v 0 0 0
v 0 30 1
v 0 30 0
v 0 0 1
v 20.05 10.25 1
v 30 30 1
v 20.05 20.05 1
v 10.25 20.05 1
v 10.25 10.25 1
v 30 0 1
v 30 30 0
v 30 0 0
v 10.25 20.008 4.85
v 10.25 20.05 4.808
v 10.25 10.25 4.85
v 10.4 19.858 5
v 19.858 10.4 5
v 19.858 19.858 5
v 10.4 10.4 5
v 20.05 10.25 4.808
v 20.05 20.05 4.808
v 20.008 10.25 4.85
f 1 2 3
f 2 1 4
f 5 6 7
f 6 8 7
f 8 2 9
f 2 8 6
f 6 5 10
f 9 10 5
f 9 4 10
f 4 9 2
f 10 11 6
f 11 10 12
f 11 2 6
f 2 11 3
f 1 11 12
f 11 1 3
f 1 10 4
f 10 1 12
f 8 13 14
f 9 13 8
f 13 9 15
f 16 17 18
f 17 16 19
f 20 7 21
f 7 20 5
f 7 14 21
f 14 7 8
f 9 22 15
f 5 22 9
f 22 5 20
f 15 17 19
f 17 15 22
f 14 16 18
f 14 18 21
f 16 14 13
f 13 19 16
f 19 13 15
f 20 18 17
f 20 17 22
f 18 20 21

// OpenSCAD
// file: ../configuration.scad
// Vyska vrstvy pro tisknuti dilu [mm]
layer_height = 0.25; //Slic3r->Print Settings->Layers and perimeters->Layer height

// Rezerva prumeru hlavy sroubu [mm]
spare = 1;
// Prumer hlavy M6 sroubu (pricte se rezerva) [mm]
M6_head_diameter = 10.6+spare;
//M6_head_diameter = 12+spare;

// Vyska hlavy M6 sroubu (dulezite pro zapusteni hlavy sroubu do plastu) [mm]
M6_head_height = 3.6;
//M6_head_height = 4.5;

//Prumery sroubu a tyci
M8_smooth_rod_diameter = 8.3;
M8_smooth_rod_diameter_catch = 8;
M6_diameter = 6.6;
M6_diamater_horizontal = 6.5;
M3_diameter = 3.7;
M3_diameter_horizontal = 3.5;

//Prumery matic
M3_nut_diameter = 7.0;
M3_nut_diameter_horizontal = 6.7;

//ALU profile parameters
ALU_cut_width = 7.9;
ALU_cut_width_horizontal = 7.7;

// Delka motoru (ovlivni dily pro osy Z a Y)
//SX17-1003LQFE (doporuceno hlavne na osu Z)
//motor_length = 29.5;
//SX17-1003 (doporuceno hlavne na osu Z)
motor_length = 34;
//SX17-1005
//motor_length = 40;
//SX17-0905 - zde je jiz problem s velkou vyskou motoru na ose Z - musi se upravit endstop-holder
//motor_length = 48;

// Sirka vytlacovaneho materialu [mm]
extrusion_width = 0.66; //Slic3r->Print Settings->Advanced->Default extrusion width

/// Vyberte typ remenu ******************************************************

// GT2 
//belt_tooth_distance = 2;
//belt_tooth_ratio = 0.6;

// T2.5
belt_tooth_distance = 2.5;
belt_tooth_ratio = 0.68;
// main file
// RebeliX
//
// profile cover
// GNU GPL v3
// Martin Neruda <neruda@reprap4u.cz>
// http://www.reprap4u.cz

include <../configuration.scad>

block_size=9.8;

difference(){
	union(){
		cube([30,30,4*layer_height]);
		translate([15-4.75,15-4.75,0]) cube([block_size,block_size,5]);
	}	
	// Nabeh
	translate([0,15-block_size/2,4.7]) rotate([45,0,0]) cube([40,3,3]);
	translate([0,15+block_size/1.9,4.7]) rotate([45,0,0]) cube([40,3,3]);
	translate([15-block_size/2,0,4.7]) rotate([45,0,90]) cube([40,3,3]);
	translate([15+block_size/1.9,0,4.7]) rotate([45,0,90]) cube([40,3,3]);
}	
